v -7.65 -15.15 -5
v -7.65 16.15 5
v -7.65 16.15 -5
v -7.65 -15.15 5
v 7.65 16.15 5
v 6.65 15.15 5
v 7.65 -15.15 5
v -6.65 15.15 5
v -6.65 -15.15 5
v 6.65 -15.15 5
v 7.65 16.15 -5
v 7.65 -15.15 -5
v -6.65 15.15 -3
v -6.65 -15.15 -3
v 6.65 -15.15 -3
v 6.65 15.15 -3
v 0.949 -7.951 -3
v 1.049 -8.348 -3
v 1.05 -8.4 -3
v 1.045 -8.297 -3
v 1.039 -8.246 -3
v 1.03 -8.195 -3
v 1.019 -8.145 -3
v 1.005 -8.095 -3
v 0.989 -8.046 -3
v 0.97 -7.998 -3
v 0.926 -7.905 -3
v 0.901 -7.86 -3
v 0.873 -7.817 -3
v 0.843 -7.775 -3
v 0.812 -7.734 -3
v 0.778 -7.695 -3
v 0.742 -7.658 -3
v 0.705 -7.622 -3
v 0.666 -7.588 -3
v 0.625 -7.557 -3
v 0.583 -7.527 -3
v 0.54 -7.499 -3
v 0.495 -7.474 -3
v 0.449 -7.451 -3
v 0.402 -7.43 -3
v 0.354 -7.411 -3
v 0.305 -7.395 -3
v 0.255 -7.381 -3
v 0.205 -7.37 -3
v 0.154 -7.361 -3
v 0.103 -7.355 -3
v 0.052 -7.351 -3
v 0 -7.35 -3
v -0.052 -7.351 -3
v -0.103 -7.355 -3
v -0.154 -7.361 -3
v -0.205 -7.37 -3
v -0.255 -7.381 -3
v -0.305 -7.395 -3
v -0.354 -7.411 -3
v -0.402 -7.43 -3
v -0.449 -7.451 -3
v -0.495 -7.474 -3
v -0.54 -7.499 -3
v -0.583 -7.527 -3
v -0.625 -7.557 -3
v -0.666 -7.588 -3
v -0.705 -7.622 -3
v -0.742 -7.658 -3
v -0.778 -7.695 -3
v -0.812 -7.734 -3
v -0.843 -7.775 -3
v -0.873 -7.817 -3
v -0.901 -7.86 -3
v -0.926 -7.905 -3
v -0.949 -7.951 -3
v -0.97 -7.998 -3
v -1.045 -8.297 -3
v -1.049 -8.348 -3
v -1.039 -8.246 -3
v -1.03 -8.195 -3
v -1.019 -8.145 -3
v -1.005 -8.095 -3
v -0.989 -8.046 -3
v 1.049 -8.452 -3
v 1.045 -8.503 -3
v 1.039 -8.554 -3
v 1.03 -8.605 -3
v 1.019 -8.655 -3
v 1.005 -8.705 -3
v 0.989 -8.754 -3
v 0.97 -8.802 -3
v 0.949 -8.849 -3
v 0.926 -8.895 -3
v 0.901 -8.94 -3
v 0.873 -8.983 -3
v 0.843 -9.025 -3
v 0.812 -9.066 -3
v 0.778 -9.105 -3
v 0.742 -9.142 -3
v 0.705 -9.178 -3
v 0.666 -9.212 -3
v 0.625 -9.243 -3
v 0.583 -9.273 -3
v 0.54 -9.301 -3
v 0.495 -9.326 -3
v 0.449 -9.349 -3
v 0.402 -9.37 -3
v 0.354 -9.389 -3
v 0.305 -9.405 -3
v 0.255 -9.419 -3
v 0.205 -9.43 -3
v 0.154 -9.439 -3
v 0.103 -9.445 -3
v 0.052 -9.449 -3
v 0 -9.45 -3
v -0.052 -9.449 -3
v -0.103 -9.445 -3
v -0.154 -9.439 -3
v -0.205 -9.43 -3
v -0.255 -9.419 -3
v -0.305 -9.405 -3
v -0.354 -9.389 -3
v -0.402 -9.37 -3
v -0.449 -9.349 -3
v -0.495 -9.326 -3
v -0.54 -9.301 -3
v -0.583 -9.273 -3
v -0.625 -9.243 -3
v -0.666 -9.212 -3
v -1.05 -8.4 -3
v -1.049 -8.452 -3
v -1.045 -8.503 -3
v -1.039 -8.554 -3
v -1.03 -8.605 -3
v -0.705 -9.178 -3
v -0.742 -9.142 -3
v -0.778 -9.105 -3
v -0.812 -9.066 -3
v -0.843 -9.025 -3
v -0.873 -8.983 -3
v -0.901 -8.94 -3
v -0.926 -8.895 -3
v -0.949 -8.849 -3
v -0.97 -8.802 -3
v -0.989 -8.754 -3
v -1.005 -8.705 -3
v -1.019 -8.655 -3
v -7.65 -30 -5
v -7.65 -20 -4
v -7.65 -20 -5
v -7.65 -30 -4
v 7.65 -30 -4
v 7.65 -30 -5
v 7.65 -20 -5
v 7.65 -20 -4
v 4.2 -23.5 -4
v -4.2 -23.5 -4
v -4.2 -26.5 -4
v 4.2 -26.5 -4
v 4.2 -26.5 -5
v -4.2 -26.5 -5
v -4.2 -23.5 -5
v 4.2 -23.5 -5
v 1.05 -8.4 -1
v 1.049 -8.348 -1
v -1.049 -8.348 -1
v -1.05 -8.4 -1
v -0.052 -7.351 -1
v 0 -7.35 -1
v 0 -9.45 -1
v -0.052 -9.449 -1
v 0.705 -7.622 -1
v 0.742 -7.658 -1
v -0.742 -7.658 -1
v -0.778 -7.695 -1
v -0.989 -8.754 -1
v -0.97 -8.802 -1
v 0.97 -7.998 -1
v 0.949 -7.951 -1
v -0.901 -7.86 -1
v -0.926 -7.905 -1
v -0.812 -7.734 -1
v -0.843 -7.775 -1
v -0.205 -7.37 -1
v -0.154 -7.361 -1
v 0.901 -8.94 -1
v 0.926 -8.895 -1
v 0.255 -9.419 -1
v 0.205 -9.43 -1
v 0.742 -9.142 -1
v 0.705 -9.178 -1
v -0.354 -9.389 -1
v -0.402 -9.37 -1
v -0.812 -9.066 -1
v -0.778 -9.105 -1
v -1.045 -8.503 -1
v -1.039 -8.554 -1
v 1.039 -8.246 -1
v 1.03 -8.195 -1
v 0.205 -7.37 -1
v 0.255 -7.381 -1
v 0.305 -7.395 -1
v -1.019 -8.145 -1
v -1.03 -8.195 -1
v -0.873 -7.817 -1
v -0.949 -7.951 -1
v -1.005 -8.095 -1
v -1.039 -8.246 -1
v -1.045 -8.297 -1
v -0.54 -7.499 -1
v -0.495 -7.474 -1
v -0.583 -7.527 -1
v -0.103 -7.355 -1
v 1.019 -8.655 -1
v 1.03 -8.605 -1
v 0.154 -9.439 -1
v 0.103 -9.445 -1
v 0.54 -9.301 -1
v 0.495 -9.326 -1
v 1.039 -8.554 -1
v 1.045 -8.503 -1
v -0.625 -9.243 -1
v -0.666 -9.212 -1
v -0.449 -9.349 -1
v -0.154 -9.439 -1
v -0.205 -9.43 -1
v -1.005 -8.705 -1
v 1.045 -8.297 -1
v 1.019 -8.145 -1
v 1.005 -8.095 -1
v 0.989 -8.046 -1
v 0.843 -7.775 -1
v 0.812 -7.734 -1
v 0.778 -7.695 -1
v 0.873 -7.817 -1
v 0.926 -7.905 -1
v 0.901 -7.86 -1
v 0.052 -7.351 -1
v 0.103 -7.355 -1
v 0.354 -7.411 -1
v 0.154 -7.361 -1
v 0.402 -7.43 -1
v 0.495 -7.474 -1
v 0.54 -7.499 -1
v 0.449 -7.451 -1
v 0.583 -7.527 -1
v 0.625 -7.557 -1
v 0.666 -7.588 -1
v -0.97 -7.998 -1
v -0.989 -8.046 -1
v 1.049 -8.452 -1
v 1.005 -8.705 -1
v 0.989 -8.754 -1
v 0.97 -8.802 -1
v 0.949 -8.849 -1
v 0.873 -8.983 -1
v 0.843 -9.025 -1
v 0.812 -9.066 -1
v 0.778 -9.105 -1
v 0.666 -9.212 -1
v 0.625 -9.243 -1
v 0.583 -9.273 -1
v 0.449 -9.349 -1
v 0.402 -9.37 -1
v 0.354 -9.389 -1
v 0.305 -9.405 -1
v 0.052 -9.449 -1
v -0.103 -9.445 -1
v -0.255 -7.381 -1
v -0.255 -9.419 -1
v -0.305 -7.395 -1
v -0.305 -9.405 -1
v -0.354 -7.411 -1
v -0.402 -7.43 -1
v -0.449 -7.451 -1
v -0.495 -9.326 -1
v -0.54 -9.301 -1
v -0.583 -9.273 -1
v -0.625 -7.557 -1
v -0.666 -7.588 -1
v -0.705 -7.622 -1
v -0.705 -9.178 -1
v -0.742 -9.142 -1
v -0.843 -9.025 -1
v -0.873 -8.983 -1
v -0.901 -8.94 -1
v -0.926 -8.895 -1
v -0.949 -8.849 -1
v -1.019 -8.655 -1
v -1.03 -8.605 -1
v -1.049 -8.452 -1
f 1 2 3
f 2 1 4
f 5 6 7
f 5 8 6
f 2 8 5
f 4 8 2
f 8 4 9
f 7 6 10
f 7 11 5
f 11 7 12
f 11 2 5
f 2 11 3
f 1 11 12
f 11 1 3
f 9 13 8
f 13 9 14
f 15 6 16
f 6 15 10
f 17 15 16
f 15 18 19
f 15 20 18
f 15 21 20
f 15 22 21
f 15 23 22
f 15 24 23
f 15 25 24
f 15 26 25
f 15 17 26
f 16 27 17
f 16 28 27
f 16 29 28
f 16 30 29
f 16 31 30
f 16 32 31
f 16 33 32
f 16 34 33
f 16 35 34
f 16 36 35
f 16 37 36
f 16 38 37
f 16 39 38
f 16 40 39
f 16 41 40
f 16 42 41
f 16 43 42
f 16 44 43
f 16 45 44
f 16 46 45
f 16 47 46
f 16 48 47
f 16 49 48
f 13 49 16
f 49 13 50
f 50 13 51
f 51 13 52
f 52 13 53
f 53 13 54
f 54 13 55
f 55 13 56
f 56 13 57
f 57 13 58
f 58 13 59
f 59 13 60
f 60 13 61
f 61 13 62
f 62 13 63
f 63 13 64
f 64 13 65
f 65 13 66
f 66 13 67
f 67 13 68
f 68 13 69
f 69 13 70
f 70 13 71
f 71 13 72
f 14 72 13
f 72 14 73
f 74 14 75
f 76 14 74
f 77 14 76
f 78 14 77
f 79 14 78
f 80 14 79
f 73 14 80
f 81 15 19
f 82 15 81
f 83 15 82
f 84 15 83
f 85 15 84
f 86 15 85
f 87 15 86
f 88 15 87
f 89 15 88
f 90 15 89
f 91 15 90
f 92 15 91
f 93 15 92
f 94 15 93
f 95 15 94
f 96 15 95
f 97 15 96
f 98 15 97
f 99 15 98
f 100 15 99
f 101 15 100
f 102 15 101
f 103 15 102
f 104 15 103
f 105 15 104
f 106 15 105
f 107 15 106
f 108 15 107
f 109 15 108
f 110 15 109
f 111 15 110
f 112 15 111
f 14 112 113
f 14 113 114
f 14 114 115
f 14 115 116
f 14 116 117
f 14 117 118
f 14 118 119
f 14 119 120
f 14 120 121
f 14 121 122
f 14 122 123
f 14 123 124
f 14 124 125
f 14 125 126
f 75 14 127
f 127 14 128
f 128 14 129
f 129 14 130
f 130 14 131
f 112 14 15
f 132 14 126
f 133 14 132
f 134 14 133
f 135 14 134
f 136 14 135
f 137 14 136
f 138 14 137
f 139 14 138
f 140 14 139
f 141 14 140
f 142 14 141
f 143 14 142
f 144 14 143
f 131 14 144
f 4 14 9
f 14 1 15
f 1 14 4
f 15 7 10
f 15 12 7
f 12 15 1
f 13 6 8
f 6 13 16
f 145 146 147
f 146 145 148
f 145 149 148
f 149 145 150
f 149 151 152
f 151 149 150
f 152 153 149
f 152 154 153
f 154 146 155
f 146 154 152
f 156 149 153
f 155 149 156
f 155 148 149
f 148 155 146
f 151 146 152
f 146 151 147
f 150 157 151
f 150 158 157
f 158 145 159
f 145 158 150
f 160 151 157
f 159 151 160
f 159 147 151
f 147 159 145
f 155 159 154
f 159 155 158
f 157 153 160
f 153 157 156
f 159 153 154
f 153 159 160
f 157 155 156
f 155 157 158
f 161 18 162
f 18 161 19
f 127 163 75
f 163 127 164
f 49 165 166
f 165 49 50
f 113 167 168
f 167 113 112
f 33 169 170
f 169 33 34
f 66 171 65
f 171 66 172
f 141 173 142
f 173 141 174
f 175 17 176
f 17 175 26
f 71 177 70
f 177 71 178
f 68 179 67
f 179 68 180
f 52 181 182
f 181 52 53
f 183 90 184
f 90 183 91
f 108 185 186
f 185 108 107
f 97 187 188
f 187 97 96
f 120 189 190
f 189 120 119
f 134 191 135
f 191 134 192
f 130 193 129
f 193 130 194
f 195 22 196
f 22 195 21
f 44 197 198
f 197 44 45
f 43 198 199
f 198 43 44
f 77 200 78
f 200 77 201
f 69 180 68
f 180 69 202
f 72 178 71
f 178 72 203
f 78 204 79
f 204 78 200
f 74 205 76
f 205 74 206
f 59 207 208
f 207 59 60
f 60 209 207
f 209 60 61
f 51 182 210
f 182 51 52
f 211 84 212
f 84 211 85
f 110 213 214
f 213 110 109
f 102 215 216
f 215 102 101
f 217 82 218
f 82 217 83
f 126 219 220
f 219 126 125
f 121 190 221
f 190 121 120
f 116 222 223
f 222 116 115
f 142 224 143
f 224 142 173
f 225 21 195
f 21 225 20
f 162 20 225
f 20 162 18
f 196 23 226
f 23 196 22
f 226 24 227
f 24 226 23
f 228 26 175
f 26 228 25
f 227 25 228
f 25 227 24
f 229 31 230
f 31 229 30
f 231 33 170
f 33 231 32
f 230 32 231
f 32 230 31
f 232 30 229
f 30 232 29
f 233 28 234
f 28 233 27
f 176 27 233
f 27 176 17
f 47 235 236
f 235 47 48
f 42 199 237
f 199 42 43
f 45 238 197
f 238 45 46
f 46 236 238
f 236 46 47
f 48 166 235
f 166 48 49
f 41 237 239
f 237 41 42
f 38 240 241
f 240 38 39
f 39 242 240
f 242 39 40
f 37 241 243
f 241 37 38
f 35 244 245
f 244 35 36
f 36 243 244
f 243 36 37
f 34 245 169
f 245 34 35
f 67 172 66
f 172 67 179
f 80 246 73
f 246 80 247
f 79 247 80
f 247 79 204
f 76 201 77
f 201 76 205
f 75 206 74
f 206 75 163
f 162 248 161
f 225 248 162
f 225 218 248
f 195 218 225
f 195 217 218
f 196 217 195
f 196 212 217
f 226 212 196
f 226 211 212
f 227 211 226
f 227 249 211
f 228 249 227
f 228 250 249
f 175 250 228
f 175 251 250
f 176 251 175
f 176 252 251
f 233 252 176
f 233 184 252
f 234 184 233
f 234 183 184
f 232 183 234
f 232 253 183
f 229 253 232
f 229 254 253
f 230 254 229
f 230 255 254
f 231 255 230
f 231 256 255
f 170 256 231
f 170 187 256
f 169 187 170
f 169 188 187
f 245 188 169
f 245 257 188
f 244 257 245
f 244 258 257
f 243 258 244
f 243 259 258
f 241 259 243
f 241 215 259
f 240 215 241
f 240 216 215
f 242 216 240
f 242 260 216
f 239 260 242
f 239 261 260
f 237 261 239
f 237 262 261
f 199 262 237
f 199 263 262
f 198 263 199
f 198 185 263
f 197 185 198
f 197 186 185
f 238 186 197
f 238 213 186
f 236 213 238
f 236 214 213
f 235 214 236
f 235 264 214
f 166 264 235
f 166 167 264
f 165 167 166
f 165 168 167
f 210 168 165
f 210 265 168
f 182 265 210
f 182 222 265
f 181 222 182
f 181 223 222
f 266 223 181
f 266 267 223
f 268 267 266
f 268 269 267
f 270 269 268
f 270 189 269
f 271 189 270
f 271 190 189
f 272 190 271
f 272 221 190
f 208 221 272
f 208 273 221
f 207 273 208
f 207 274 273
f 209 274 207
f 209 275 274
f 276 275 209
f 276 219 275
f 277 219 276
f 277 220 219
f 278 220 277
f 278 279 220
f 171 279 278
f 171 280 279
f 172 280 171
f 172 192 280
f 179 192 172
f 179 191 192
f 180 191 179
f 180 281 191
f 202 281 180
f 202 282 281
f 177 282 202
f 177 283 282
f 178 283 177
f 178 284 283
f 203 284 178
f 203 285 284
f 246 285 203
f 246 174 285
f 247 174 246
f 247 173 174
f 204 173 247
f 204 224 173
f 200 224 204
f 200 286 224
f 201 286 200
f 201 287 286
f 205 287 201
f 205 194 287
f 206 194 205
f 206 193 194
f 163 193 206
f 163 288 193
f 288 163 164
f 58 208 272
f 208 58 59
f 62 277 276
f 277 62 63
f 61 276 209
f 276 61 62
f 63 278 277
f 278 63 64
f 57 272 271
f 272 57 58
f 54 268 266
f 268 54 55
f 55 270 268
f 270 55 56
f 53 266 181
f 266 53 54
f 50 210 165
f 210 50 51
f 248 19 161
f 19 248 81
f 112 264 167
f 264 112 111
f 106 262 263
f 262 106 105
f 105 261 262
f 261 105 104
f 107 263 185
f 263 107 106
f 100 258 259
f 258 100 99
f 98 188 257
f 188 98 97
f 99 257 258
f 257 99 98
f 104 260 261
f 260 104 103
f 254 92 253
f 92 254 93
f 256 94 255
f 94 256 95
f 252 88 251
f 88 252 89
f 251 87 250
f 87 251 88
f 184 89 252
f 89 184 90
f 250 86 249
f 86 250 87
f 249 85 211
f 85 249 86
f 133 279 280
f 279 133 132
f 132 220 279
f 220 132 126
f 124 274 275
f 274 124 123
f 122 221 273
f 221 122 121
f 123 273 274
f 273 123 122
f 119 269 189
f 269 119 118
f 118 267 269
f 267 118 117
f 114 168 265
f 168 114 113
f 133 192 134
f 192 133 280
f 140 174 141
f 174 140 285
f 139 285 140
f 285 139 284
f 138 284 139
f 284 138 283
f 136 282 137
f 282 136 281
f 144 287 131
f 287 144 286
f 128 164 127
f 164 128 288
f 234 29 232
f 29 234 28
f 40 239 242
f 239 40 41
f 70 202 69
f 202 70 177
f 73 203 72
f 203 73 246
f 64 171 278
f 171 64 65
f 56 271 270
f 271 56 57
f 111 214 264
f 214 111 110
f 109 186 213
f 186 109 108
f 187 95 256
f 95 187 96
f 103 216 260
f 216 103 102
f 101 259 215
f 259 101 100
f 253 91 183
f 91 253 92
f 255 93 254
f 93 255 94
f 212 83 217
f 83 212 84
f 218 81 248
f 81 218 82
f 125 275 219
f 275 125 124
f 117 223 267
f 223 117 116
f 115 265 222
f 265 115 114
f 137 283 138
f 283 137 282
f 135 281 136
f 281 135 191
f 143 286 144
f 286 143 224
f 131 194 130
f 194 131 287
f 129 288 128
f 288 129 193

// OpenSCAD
width = 13.3;
height = 30.3;
depth = 8;

hole_offset_from_top = 6.75;
diameter = 2.1;
width_cable_opening = 8.4;
height_cable_opening = 5.4;


difference()
{
    //base
    cube([width+2, height+2, depth+2], center = true);
    
    //cube difference
    translate([0,0,1])
    cube([width, height, depth], center = true);
    
    //opening for connections
    translate([0,-height/2,2])
    cube([width_cable_opening, height_cable_opening, 2], center = true);
    
    translate([0,-((height/2)+0.5),0])
    rotate([0,0,0])
    cube([width+2,1,depth+2], center = true);
  
}

translate([0,-(height/2-hole_offset_from_top),-(depth/2)+2])
cylinder(h = 2, r=diameter/2, $fn = 128, center = true);


//top
difference(){

translate([0,-25,-(depth/2+0.5)])
rotate([90,0,0])
cube([width+2,1,depth+2], center = true);
    
    translate([0,-25,-(depth/2+0.5)])
cube([width_cable_opening,3,depth+2], center = true);

}    
